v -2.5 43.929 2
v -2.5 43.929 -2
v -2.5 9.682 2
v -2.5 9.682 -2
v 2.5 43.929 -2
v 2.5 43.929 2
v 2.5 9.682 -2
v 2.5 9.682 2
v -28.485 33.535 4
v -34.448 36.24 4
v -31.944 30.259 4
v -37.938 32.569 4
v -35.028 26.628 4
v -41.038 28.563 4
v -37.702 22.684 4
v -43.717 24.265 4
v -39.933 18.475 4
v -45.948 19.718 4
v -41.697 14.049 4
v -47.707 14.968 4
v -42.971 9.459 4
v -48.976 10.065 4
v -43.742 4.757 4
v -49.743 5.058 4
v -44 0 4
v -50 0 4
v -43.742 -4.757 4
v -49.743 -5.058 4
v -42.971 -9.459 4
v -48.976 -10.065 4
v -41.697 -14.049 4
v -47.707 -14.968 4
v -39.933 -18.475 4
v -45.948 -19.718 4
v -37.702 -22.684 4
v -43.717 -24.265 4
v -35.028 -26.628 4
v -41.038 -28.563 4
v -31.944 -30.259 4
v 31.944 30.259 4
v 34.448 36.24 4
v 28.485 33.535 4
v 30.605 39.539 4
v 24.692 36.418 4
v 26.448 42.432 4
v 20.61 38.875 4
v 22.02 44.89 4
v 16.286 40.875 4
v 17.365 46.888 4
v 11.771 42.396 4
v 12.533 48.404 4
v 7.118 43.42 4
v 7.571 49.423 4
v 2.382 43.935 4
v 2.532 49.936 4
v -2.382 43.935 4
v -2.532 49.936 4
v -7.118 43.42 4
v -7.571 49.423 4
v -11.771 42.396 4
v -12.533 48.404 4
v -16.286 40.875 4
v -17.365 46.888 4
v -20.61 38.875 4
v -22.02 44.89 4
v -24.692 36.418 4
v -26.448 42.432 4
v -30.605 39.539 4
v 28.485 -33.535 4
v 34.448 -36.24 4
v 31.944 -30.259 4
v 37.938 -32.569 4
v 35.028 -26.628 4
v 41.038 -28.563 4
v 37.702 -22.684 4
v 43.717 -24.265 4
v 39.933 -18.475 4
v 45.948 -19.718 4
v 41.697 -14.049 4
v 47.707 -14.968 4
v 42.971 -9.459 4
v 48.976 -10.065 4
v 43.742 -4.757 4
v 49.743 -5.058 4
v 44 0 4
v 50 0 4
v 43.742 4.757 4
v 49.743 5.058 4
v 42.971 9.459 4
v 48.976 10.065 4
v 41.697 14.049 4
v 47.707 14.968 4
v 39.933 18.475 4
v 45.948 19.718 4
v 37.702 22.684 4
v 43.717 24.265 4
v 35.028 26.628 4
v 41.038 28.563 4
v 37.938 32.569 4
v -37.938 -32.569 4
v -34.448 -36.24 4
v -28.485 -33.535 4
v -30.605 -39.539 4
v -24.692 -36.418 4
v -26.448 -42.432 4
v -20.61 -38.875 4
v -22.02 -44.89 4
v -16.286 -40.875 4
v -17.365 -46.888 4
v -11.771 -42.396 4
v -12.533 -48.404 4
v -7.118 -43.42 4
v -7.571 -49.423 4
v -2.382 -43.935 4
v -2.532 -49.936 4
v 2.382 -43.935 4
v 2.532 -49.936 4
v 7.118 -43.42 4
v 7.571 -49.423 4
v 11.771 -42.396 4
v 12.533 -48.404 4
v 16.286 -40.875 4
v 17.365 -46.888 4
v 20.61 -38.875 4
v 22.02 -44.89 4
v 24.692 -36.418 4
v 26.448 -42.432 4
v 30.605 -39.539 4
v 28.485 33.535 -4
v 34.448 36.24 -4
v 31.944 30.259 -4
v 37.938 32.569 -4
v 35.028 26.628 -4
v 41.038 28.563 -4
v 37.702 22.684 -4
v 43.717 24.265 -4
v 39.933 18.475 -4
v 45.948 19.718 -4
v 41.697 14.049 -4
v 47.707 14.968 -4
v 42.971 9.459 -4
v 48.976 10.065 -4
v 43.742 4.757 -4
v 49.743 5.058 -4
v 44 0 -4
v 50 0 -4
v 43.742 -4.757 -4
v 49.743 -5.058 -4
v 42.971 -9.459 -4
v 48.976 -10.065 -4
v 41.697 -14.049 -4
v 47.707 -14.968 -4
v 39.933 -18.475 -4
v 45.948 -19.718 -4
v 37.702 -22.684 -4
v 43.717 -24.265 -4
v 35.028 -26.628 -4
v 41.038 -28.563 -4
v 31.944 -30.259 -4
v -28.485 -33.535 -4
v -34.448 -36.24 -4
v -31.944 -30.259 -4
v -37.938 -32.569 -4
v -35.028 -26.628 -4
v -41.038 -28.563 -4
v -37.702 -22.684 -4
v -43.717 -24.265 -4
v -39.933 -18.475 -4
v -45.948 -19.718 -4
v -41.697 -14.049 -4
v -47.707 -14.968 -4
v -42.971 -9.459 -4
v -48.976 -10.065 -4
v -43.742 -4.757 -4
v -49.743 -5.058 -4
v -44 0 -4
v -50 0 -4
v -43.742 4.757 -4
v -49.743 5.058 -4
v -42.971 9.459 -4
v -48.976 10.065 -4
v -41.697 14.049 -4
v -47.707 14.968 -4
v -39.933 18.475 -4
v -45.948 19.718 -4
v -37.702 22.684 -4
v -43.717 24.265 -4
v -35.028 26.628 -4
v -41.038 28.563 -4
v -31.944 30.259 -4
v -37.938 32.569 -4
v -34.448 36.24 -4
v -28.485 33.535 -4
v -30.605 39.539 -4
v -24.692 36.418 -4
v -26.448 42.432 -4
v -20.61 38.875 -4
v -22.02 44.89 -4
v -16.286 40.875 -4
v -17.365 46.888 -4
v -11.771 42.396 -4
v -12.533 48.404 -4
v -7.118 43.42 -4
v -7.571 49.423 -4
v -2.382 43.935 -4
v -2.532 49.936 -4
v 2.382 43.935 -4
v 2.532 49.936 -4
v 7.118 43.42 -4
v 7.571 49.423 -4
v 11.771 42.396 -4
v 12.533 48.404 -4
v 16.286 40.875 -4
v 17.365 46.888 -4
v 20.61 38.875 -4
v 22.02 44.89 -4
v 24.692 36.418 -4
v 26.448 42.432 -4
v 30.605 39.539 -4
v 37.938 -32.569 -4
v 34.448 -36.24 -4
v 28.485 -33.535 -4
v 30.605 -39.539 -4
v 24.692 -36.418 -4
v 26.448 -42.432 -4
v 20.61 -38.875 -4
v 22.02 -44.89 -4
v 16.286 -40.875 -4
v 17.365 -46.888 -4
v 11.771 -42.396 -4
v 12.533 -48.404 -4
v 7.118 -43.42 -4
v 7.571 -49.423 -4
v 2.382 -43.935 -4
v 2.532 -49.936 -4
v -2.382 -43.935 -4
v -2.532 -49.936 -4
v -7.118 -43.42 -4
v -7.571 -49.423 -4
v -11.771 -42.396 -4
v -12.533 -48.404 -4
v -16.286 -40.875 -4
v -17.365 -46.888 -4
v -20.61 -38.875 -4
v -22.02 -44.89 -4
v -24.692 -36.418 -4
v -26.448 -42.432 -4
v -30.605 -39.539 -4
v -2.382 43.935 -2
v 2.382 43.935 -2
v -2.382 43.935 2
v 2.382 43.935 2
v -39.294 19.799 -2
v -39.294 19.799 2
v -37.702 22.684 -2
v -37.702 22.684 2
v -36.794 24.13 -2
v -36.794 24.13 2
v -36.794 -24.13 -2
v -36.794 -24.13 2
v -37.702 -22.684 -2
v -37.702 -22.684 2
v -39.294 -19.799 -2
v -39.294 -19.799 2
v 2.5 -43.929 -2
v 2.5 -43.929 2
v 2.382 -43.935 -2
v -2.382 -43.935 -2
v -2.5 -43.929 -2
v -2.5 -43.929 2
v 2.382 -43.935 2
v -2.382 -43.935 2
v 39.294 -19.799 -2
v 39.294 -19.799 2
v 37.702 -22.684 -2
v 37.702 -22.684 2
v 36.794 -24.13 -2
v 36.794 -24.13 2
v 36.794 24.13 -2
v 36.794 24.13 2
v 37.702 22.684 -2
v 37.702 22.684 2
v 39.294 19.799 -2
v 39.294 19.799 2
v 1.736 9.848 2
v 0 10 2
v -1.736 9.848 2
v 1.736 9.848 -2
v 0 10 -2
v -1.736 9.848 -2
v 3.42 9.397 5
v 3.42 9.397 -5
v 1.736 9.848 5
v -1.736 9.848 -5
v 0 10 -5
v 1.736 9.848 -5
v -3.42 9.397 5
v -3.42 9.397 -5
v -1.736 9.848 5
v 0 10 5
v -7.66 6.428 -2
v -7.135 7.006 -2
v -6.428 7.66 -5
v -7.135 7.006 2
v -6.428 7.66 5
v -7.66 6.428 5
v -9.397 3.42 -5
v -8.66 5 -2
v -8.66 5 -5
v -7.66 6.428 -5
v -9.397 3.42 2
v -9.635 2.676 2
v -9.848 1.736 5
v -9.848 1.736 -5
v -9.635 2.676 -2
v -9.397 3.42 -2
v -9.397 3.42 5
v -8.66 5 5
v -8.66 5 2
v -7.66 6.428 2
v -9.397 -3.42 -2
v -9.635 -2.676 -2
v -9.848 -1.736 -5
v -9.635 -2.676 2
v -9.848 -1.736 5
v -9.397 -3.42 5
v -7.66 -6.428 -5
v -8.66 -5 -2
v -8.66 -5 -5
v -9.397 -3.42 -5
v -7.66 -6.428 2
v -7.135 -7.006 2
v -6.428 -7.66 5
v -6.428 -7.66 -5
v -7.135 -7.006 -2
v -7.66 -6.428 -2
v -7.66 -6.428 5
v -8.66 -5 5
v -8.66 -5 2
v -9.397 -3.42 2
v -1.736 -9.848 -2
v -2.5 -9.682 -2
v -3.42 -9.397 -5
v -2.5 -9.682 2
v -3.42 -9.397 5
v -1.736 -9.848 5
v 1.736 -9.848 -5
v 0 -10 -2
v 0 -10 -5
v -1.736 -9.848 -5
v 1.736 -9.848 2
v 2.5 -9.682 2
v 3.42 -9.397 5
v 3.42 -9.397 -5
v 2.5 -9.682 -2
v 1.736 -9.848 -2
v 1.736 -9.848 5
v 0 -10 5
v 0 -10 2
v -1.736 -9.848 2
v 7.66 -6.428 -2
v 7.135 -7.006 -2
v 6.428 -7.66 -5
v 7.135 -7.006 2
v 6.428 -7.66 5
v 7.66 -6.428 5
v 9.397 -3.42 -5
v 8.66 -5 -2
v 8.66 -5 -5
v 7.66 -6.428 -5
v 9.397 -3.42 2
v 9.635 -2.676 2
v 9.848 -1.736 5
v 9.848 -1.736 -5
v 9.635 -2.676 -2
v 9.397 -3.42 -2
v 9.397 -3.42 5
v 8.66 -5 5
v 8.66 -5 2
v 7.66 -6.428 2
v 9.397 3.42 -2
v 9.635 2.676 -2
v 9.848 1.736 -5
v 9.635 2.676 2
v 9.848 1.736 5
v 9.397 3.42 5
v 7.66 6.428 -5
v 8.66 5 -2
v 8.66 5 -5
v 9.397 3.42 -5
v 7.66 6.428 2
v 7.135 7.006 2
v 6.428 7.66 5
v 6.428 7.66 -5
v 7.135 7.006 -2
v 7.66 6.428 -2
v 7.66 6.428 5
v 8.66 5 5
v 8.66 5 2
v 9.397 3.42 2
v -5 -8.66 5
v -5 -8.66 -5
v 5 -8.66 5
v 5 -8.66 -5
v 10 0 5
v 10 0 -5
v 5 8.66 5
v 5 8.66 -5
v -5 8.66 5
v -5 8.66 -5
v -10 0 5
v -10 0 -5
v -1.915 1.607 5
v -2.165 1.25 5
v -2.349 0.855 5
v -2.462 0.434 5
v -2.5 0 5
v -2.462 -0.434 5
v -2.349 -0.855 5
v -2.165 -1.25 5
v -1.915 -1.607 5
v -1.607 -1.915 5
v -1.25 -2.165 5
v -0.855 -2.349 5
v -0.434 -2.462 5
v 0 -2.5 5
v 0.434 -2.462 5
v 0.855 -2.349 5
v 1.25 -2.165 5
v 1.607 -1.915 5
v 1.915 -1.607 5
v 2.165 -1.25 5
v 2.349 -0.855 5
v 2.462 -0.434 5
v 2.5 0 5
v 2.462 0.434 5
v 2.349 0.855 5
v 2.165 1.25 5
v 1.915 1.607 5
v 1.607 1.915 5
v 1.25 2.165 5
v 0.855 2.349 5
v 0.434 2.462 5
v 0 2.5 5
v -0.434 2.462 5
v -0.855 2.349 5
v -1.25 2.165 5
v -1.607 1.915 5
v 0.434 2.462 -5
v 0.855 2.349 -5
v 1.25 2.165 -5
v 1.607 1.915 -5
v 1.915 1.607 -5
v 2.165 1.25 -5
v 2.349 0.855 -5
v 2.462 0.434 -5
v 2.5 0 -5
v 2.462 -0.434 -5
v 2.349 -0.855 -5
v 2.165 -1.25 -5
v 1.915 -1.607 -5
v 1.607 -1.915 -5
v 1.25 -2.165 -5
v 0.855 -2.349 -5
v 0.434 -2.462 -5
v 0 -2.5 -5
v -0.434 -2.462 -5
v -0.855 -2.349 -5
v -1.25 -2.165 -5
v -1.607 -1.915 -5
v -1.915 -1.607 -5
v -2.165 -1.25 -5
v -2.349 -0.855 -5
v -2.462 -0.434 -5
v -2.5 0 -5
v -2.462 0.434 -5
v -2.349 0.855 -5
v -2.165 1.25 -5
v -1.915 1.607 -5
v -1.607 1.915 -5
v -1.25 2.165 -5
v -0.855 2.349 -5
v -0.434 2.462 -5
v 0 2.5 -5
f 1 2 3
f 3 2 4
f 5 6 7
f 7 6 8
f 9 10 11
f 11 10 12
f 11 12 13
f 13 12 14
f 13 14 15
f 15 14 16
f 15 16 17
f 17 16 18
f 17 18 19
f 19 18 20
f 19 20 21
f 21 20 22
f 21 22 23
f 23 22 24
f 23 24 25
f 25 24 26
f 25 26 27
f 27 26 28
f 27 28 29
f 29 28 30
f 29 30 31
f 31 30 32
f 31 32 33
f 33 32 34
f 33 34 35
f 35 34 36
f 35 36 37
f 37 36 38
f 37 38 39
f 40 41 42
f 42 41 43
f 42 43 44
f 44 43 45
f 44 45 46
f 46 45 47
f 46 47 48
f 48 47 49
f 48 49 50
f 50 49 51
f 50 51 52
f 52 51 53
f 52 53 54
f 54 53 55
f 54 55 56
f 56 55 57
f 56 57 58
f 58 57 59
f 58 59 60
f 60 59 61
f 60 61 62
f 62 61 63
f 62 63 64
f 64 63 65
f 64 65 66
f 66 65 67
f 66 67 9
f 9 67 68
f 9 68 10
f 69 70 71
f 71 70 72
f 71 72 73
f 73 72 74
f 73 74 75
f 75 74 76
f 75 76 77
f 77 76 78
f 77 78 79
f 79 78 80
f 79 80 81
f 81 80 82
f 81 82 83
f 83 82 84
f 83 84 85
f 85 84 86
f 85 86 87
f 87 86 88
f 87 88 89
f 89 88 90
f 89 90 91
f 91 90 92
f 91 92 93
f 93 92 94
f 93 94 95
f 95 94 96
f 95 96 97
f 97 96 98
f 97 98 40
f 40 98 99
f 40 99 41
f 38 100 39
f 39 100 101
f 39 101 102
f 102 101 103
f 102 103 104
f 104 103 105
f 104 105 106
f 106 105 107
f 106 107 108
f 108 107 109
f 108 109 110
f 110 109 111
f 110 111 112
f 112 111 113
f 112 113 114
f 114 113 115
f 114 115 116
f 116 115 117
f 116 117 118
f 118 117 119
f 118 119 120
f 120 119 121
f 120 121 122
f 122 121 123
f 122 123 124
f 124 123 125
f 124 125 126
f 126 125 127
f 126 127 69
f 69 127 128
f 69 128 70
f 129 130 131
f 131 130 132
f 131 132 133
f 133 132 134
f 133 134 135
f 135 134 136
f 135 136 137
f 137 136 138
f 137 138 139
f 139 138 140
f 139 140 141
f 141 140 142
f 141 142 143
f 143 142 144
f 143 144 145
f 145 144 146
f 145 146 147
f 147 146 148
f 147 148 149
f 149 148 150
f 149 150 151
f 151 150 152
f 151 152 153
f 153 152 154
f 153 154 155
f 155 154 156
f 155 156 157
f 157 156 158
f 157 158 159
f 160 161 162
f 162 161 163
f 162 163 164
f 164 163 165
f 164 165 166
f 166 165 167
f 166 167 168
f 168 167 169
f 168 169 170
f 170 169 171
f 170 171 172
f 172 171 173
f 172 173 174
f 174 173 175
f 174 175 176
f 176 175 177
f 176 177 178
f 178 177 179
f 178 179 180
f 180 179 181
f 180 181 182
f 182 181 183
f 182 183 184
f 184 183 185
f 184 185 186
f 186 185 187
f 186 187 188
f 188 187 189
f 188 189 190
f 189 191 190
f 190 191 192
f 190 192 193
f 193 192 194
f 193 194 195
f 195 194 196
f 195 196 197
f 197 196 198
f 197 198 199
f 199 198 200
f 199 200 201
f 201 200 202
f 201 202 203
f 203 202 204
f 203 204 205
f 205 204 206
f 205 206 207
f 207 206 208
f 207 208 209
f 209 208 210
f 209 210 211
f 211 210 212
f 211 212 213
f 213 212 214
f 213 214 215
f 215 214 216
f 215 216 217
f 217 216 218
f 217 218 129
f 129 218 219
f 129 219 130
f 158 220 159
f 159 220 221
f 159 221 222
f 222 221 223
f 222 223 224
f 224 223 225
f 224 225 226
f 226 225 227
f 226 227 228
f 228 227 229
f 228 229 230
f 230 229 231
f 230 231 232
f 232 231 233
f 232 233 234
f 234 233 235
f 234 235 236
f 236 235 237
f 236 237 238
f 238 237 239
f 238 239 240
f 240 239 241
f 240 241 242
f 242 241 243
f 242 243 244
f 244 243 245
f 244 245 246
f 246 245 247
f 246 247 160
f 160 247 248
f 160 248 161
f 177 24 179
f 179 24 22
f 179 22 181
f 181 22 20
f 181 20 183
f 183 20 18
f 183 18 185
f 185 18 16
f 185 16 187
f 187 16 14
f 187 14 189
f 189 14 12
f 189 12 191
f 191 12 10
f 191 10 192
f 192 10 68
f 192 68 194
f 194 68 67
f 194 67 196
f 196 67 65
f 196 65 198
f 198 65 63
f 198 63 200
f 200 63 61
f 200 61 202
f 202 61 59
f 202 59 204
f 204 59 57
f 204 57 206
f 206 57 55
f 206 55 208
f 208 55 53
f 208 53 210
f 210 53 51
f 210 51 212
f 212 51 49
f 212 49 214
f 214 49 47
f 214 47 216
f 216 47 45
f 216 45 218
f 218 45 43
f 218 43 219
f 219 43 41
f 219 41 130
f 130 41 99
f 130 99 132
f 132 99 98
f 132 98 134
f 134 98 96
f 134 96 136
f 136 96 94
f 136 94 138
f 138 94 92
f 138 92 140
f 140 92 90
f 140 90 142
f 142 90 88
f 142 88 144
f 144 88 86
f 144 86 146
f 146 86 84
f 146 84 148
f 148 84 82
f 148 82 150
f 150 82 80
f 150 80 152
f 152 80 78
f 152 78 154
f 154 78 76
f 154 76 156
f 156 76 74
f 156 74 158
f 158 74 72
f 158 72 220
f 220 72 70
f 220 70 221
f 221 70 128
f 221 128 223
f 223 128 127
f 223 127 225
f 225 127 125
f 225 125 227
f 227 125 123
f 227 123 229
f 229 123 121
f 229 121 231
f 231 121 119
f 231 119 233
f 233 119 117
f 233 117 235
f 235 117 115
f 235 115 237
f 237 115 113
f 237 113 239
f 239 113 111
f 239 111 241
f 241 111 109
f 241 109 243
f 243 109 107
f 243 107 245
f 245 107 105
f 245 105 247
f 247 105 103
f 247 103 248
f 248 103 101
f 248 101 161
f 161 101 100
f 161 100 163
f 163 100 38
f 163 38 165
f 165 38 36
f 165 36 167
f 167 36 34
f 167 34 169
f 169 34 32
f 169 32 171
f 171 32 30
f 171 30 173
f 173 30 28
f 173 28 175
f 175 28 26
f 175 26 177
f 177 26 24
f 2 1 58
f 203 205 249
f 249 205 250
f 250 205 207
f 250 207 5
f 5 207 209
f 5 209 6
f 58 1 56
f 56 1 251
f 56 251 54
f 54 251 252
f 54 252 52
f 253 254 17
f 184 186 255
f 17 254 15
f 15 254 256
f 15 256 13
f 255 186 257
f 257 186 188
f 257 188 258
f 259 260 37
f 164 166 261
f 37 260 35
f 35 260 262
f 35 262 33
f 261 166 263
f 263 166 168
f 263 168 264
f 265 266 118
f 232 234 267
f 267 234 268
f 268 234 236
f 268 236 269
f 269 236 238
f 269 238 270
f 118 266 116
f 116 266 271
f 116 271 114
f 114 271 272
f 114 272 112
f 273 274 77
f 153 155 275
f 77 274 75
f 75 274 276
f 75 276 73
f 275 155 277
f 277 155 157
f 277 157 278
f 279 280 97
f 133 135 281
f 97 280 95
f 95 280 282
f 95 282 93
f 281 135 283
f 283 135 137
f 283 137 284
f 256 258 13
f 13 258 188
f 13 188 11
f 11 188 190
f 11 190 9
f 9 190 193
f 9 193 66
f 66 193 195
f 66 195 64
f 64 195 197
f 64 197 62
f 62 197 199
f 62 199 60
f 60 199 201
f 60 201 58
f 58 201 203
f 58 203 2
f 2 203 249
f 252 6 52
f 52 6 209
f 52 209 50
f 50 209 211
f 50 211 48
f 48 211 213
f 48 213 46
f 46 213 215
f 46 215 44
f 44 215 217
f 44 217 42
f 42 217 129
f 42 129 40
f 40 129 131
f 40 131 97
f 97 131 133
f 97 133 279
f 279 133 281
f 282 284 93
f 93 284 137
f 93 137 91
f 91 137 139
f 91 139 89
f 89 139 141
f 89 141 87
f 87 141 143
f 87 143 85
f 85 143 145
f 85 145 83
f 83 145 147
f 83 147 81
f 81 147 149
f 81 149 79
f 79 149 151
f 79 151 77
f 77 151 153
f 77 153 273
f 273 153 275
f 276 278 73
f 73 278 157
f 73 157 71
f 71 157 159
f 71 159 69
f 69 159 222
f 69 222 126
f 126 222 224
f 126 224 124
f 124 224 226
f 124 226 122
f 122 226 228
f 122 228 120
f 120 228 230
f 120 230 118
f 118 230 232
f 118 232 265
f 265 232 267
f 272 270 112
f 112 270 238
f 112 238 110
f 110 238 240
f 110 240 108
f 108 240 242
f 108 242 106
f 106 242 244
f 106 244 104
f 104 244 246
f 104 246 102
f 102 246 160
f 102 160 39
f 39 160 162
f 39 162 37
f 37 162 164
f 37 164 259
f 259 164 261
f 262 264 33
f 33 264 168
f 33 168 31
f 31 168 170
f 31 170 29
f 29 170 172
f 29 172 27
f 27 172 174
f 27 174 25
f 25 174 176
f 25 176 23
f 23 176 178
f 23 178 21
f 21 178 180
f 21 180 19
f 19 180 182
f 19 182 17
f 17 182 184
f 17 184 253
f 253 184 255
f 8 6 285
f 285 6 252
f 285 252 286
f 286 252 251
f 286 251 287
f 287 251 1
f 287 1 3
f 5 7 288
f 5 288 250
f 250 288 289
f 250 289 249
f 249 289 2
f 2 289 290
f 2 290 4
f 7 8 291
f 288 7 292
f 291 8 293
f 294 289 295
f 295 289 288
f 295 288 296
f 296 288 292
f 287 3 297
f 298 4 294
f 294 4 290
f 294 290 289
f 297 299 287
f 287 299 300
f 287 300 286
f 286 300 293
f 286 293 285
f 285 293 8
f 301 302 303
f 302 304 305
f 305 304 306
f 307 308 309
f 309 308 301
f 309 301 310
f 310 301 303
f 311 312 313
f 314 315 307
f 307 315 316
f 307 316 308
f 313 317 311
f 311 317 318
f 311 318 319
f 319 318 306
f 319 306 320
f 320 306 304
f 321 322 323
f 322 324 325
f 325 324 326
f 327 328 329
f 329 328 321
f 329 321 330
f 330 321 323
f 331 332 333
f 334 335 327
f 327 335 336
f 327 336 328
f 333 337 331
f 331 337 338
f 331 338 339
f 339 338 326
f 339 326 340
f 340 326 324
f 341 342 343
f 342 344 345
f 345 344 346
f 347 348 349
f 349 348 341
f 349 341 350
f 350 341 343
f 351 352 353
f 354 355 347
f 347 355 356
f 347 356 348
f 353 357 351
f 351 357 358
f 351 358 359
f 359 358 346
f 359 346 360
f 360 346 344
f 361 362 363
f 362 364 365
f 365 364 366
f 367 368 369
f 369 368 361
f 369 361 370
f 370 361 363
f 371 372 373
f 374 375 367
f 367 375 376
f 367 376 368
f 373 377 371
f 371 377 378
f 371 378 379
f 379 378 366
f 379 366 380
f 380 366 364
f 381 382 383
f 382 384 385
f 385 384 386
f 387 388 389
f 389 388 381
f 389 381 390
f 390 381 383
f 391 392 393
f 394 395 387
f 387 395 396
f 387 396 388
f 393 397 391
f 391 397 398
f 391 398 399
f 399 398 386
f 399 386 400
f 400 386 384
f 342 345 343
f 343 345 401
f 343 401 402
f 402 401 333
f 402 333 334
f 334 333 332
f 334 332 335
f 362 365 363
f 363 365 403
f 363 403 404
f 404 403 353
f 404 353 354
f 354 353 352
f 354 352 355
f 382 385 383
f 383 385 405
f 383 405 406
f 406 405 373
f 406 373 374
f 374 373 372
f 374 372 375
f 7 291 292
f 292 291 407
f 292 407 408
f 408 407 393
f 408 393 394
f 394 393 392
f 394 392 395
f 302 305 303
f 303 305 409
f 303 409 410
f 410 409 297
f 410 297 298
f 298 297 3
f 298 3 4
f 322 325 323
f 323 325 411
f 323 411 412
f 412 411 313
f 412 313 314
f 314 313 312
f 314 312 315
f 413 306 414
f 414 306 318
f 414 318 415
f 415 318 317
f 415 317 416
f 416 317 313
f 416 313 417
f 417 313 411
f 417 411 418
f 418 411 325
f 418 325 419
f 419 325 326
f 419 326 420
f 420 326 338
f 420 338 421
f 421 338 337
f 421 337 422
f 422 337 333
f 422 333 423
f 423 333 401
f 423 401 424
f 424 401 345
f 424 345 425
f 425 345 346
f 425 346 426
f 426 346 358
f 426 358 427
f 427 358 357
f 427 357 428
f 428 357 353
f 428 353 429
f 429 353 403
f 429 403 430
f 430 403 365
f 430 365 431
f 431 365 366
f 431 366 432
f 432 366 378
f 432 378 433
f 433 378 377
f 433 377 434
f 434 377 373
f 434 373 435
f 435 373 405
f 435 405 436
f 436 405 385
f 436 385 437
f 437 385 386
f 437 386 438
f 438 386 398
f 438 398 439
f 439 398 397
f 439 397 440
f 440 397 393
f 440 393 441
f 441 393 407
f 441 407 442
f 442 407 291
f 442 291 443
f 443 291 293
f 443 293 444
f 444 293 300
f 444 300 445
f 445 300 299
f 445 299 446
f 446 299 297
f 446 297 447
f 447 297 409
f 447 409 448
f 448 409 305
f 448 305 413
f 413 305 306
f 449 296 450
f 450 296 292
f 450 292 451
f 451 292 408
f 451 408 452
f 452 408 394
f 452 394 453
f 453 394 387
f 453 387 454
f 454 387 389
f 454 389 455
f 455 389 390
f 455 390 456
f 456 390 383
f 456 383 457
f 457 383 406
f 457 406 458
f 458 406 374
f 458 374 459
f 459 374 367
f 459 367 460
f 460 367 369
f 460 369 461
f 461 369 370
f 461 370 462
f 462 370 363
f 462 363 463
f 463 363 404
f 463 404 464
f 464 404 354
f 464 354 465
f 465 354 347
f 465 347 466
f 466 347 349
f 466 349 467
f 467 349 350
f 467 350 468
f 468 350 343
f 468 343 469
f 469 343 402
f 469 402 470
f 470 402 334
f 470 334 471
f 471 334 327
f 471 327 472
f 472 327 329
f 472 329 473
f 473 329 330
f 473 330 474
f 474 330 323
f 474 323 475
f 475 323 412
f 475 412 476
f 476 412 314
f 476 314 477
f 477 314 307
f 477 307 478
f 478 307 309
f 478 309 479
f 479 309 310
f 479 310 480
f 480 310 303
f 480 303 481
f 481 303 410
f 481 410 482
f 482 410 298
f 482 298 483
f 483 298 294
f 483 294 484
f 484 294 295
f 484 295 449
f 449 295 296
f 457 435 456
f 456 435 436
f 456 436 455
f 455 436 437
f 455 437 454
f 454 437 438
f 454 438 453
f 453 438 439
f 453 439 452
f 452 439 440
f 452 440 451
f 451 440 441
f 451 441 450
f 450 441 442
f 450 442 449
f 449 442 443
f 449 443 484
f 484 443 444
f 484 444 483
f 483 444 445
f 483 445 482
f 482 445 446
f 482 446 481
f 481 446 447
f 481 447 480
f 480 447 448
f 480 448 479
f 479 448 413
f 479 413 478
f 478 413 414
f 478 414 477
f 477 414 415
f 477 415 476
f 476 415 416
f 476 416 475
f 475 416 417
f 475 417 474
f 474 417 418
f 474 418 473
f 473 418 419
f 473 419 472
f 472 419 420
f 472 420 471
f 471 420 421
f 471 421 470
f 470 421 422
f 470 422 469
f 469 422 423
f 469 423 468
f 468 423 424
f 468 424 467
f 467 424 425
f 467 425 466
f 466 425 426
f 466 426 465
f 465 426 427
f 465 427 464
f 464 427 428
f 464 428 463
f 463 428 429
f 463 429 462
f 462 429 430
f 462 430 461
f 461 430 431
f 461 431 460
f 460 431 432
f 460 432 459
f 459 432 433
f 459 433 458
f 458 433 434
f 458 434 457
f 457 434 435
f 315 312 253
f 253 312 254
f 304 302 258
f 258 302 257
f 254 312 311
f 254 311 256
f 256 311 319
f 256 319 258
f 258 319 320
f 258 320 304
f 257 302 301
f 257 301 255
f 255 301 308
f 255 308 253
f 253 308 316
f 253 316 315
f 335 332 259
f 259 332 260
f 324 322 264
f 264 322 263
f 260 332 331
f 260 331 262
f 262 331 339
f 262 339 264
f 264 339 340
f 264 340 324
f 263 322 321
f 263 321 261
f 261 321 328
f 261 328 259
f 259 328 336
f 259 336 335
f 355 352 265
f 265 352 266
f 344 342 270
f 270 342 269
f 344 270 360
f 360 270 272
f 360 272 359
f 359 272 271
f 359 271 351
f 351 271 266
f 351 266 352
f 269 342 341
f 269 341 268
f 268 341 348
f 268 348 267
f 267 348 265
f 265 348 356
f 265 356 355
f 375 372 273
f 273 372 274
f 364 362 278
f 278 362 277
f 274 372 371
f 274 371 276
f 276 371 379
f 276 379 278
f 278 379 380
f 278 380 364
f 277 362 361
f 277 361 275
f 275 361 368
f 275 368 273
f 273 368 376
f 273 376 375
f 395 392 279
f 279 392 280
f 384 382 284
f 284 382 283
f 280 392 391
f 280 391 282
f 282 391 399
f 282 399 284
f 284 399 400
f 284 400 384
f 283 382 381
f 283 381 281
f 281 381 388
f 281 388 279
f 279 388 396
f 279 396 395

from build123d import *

# Parameters (mm, degrees)
SKETCH1_R           = 50
SKETCH1_R_2         = 44
BOSS_EXTRUDE1_DEPTH = 4
SKETCH2_R           = 10
BOSS_EXTRUDE2_DEPTH = 5
SKETCH3_W           = 5
SKETCH3_H           = 36
BOSS_EXTRUDE3_DEPTH = 2
SKETCH4_R           = 2.5
CUT_EXTRUDE1_DEPTH  = 6
CIRPATTERN1_COUNT   = 6


with BuildPart() as part:
    # Sketch1 → Boss-Extrude1 (new, symmetric)
    with BuildSketch(Plane.XY):
        Circle(SKETCH1_R)
        Circle(SKETCH1_R_2, mode=Mode.SUBTRACT)
    extrude(amount=BOSS_EXTRUDE1_DEPTH, both=True)



with BuildPart() as body_2:
    # Sketch2 → Boss-Extrude2 (new, symmetric)
    with BuildSketch(Plane.XY):
        Circle(SKETCH2_R)
    extrude(amount=BOSS_EXTRUDE2_DEPTH, both=True)


with BuildPart() as part_1:
    add(part.part)

    add(body_2.part)  # Boss-Extrude3 merges body 2
    # Sketch3 → Boss-Extrude3 (add, symmetric)
    with BuildSketch(Plane.XY):
        with Locations((0, 27)):
            Rectangle(SKETCH3_W, SKETCH3_H)
    boss_extrude3 = extrude(amount=BOSS_EXTRUDE3_DEPTH, both=True)

    # Sketch4 → Cut-Extrude1 (cut, symmetric)
    with BuildSketch(Plane.XY):
        Circle(SKETCH4_R)
    extrude(amount=CUT_EXTRUDE1_DEPTH, both=True, mode=Mode.SUBTRACT)

    # CirPattern1: Boss-Extrude3 ×6 about axis
    cirpattern1_axis = Axis((0, 0, 0), (0, 0, 1))
    for i in range(1, CIRPATTERN1_COUNT):
        add(boss_extrude3.rotate(cirpattern1_axis, i * 360 / CIRPATTERN1_COUNT))


solid = part_1.part
